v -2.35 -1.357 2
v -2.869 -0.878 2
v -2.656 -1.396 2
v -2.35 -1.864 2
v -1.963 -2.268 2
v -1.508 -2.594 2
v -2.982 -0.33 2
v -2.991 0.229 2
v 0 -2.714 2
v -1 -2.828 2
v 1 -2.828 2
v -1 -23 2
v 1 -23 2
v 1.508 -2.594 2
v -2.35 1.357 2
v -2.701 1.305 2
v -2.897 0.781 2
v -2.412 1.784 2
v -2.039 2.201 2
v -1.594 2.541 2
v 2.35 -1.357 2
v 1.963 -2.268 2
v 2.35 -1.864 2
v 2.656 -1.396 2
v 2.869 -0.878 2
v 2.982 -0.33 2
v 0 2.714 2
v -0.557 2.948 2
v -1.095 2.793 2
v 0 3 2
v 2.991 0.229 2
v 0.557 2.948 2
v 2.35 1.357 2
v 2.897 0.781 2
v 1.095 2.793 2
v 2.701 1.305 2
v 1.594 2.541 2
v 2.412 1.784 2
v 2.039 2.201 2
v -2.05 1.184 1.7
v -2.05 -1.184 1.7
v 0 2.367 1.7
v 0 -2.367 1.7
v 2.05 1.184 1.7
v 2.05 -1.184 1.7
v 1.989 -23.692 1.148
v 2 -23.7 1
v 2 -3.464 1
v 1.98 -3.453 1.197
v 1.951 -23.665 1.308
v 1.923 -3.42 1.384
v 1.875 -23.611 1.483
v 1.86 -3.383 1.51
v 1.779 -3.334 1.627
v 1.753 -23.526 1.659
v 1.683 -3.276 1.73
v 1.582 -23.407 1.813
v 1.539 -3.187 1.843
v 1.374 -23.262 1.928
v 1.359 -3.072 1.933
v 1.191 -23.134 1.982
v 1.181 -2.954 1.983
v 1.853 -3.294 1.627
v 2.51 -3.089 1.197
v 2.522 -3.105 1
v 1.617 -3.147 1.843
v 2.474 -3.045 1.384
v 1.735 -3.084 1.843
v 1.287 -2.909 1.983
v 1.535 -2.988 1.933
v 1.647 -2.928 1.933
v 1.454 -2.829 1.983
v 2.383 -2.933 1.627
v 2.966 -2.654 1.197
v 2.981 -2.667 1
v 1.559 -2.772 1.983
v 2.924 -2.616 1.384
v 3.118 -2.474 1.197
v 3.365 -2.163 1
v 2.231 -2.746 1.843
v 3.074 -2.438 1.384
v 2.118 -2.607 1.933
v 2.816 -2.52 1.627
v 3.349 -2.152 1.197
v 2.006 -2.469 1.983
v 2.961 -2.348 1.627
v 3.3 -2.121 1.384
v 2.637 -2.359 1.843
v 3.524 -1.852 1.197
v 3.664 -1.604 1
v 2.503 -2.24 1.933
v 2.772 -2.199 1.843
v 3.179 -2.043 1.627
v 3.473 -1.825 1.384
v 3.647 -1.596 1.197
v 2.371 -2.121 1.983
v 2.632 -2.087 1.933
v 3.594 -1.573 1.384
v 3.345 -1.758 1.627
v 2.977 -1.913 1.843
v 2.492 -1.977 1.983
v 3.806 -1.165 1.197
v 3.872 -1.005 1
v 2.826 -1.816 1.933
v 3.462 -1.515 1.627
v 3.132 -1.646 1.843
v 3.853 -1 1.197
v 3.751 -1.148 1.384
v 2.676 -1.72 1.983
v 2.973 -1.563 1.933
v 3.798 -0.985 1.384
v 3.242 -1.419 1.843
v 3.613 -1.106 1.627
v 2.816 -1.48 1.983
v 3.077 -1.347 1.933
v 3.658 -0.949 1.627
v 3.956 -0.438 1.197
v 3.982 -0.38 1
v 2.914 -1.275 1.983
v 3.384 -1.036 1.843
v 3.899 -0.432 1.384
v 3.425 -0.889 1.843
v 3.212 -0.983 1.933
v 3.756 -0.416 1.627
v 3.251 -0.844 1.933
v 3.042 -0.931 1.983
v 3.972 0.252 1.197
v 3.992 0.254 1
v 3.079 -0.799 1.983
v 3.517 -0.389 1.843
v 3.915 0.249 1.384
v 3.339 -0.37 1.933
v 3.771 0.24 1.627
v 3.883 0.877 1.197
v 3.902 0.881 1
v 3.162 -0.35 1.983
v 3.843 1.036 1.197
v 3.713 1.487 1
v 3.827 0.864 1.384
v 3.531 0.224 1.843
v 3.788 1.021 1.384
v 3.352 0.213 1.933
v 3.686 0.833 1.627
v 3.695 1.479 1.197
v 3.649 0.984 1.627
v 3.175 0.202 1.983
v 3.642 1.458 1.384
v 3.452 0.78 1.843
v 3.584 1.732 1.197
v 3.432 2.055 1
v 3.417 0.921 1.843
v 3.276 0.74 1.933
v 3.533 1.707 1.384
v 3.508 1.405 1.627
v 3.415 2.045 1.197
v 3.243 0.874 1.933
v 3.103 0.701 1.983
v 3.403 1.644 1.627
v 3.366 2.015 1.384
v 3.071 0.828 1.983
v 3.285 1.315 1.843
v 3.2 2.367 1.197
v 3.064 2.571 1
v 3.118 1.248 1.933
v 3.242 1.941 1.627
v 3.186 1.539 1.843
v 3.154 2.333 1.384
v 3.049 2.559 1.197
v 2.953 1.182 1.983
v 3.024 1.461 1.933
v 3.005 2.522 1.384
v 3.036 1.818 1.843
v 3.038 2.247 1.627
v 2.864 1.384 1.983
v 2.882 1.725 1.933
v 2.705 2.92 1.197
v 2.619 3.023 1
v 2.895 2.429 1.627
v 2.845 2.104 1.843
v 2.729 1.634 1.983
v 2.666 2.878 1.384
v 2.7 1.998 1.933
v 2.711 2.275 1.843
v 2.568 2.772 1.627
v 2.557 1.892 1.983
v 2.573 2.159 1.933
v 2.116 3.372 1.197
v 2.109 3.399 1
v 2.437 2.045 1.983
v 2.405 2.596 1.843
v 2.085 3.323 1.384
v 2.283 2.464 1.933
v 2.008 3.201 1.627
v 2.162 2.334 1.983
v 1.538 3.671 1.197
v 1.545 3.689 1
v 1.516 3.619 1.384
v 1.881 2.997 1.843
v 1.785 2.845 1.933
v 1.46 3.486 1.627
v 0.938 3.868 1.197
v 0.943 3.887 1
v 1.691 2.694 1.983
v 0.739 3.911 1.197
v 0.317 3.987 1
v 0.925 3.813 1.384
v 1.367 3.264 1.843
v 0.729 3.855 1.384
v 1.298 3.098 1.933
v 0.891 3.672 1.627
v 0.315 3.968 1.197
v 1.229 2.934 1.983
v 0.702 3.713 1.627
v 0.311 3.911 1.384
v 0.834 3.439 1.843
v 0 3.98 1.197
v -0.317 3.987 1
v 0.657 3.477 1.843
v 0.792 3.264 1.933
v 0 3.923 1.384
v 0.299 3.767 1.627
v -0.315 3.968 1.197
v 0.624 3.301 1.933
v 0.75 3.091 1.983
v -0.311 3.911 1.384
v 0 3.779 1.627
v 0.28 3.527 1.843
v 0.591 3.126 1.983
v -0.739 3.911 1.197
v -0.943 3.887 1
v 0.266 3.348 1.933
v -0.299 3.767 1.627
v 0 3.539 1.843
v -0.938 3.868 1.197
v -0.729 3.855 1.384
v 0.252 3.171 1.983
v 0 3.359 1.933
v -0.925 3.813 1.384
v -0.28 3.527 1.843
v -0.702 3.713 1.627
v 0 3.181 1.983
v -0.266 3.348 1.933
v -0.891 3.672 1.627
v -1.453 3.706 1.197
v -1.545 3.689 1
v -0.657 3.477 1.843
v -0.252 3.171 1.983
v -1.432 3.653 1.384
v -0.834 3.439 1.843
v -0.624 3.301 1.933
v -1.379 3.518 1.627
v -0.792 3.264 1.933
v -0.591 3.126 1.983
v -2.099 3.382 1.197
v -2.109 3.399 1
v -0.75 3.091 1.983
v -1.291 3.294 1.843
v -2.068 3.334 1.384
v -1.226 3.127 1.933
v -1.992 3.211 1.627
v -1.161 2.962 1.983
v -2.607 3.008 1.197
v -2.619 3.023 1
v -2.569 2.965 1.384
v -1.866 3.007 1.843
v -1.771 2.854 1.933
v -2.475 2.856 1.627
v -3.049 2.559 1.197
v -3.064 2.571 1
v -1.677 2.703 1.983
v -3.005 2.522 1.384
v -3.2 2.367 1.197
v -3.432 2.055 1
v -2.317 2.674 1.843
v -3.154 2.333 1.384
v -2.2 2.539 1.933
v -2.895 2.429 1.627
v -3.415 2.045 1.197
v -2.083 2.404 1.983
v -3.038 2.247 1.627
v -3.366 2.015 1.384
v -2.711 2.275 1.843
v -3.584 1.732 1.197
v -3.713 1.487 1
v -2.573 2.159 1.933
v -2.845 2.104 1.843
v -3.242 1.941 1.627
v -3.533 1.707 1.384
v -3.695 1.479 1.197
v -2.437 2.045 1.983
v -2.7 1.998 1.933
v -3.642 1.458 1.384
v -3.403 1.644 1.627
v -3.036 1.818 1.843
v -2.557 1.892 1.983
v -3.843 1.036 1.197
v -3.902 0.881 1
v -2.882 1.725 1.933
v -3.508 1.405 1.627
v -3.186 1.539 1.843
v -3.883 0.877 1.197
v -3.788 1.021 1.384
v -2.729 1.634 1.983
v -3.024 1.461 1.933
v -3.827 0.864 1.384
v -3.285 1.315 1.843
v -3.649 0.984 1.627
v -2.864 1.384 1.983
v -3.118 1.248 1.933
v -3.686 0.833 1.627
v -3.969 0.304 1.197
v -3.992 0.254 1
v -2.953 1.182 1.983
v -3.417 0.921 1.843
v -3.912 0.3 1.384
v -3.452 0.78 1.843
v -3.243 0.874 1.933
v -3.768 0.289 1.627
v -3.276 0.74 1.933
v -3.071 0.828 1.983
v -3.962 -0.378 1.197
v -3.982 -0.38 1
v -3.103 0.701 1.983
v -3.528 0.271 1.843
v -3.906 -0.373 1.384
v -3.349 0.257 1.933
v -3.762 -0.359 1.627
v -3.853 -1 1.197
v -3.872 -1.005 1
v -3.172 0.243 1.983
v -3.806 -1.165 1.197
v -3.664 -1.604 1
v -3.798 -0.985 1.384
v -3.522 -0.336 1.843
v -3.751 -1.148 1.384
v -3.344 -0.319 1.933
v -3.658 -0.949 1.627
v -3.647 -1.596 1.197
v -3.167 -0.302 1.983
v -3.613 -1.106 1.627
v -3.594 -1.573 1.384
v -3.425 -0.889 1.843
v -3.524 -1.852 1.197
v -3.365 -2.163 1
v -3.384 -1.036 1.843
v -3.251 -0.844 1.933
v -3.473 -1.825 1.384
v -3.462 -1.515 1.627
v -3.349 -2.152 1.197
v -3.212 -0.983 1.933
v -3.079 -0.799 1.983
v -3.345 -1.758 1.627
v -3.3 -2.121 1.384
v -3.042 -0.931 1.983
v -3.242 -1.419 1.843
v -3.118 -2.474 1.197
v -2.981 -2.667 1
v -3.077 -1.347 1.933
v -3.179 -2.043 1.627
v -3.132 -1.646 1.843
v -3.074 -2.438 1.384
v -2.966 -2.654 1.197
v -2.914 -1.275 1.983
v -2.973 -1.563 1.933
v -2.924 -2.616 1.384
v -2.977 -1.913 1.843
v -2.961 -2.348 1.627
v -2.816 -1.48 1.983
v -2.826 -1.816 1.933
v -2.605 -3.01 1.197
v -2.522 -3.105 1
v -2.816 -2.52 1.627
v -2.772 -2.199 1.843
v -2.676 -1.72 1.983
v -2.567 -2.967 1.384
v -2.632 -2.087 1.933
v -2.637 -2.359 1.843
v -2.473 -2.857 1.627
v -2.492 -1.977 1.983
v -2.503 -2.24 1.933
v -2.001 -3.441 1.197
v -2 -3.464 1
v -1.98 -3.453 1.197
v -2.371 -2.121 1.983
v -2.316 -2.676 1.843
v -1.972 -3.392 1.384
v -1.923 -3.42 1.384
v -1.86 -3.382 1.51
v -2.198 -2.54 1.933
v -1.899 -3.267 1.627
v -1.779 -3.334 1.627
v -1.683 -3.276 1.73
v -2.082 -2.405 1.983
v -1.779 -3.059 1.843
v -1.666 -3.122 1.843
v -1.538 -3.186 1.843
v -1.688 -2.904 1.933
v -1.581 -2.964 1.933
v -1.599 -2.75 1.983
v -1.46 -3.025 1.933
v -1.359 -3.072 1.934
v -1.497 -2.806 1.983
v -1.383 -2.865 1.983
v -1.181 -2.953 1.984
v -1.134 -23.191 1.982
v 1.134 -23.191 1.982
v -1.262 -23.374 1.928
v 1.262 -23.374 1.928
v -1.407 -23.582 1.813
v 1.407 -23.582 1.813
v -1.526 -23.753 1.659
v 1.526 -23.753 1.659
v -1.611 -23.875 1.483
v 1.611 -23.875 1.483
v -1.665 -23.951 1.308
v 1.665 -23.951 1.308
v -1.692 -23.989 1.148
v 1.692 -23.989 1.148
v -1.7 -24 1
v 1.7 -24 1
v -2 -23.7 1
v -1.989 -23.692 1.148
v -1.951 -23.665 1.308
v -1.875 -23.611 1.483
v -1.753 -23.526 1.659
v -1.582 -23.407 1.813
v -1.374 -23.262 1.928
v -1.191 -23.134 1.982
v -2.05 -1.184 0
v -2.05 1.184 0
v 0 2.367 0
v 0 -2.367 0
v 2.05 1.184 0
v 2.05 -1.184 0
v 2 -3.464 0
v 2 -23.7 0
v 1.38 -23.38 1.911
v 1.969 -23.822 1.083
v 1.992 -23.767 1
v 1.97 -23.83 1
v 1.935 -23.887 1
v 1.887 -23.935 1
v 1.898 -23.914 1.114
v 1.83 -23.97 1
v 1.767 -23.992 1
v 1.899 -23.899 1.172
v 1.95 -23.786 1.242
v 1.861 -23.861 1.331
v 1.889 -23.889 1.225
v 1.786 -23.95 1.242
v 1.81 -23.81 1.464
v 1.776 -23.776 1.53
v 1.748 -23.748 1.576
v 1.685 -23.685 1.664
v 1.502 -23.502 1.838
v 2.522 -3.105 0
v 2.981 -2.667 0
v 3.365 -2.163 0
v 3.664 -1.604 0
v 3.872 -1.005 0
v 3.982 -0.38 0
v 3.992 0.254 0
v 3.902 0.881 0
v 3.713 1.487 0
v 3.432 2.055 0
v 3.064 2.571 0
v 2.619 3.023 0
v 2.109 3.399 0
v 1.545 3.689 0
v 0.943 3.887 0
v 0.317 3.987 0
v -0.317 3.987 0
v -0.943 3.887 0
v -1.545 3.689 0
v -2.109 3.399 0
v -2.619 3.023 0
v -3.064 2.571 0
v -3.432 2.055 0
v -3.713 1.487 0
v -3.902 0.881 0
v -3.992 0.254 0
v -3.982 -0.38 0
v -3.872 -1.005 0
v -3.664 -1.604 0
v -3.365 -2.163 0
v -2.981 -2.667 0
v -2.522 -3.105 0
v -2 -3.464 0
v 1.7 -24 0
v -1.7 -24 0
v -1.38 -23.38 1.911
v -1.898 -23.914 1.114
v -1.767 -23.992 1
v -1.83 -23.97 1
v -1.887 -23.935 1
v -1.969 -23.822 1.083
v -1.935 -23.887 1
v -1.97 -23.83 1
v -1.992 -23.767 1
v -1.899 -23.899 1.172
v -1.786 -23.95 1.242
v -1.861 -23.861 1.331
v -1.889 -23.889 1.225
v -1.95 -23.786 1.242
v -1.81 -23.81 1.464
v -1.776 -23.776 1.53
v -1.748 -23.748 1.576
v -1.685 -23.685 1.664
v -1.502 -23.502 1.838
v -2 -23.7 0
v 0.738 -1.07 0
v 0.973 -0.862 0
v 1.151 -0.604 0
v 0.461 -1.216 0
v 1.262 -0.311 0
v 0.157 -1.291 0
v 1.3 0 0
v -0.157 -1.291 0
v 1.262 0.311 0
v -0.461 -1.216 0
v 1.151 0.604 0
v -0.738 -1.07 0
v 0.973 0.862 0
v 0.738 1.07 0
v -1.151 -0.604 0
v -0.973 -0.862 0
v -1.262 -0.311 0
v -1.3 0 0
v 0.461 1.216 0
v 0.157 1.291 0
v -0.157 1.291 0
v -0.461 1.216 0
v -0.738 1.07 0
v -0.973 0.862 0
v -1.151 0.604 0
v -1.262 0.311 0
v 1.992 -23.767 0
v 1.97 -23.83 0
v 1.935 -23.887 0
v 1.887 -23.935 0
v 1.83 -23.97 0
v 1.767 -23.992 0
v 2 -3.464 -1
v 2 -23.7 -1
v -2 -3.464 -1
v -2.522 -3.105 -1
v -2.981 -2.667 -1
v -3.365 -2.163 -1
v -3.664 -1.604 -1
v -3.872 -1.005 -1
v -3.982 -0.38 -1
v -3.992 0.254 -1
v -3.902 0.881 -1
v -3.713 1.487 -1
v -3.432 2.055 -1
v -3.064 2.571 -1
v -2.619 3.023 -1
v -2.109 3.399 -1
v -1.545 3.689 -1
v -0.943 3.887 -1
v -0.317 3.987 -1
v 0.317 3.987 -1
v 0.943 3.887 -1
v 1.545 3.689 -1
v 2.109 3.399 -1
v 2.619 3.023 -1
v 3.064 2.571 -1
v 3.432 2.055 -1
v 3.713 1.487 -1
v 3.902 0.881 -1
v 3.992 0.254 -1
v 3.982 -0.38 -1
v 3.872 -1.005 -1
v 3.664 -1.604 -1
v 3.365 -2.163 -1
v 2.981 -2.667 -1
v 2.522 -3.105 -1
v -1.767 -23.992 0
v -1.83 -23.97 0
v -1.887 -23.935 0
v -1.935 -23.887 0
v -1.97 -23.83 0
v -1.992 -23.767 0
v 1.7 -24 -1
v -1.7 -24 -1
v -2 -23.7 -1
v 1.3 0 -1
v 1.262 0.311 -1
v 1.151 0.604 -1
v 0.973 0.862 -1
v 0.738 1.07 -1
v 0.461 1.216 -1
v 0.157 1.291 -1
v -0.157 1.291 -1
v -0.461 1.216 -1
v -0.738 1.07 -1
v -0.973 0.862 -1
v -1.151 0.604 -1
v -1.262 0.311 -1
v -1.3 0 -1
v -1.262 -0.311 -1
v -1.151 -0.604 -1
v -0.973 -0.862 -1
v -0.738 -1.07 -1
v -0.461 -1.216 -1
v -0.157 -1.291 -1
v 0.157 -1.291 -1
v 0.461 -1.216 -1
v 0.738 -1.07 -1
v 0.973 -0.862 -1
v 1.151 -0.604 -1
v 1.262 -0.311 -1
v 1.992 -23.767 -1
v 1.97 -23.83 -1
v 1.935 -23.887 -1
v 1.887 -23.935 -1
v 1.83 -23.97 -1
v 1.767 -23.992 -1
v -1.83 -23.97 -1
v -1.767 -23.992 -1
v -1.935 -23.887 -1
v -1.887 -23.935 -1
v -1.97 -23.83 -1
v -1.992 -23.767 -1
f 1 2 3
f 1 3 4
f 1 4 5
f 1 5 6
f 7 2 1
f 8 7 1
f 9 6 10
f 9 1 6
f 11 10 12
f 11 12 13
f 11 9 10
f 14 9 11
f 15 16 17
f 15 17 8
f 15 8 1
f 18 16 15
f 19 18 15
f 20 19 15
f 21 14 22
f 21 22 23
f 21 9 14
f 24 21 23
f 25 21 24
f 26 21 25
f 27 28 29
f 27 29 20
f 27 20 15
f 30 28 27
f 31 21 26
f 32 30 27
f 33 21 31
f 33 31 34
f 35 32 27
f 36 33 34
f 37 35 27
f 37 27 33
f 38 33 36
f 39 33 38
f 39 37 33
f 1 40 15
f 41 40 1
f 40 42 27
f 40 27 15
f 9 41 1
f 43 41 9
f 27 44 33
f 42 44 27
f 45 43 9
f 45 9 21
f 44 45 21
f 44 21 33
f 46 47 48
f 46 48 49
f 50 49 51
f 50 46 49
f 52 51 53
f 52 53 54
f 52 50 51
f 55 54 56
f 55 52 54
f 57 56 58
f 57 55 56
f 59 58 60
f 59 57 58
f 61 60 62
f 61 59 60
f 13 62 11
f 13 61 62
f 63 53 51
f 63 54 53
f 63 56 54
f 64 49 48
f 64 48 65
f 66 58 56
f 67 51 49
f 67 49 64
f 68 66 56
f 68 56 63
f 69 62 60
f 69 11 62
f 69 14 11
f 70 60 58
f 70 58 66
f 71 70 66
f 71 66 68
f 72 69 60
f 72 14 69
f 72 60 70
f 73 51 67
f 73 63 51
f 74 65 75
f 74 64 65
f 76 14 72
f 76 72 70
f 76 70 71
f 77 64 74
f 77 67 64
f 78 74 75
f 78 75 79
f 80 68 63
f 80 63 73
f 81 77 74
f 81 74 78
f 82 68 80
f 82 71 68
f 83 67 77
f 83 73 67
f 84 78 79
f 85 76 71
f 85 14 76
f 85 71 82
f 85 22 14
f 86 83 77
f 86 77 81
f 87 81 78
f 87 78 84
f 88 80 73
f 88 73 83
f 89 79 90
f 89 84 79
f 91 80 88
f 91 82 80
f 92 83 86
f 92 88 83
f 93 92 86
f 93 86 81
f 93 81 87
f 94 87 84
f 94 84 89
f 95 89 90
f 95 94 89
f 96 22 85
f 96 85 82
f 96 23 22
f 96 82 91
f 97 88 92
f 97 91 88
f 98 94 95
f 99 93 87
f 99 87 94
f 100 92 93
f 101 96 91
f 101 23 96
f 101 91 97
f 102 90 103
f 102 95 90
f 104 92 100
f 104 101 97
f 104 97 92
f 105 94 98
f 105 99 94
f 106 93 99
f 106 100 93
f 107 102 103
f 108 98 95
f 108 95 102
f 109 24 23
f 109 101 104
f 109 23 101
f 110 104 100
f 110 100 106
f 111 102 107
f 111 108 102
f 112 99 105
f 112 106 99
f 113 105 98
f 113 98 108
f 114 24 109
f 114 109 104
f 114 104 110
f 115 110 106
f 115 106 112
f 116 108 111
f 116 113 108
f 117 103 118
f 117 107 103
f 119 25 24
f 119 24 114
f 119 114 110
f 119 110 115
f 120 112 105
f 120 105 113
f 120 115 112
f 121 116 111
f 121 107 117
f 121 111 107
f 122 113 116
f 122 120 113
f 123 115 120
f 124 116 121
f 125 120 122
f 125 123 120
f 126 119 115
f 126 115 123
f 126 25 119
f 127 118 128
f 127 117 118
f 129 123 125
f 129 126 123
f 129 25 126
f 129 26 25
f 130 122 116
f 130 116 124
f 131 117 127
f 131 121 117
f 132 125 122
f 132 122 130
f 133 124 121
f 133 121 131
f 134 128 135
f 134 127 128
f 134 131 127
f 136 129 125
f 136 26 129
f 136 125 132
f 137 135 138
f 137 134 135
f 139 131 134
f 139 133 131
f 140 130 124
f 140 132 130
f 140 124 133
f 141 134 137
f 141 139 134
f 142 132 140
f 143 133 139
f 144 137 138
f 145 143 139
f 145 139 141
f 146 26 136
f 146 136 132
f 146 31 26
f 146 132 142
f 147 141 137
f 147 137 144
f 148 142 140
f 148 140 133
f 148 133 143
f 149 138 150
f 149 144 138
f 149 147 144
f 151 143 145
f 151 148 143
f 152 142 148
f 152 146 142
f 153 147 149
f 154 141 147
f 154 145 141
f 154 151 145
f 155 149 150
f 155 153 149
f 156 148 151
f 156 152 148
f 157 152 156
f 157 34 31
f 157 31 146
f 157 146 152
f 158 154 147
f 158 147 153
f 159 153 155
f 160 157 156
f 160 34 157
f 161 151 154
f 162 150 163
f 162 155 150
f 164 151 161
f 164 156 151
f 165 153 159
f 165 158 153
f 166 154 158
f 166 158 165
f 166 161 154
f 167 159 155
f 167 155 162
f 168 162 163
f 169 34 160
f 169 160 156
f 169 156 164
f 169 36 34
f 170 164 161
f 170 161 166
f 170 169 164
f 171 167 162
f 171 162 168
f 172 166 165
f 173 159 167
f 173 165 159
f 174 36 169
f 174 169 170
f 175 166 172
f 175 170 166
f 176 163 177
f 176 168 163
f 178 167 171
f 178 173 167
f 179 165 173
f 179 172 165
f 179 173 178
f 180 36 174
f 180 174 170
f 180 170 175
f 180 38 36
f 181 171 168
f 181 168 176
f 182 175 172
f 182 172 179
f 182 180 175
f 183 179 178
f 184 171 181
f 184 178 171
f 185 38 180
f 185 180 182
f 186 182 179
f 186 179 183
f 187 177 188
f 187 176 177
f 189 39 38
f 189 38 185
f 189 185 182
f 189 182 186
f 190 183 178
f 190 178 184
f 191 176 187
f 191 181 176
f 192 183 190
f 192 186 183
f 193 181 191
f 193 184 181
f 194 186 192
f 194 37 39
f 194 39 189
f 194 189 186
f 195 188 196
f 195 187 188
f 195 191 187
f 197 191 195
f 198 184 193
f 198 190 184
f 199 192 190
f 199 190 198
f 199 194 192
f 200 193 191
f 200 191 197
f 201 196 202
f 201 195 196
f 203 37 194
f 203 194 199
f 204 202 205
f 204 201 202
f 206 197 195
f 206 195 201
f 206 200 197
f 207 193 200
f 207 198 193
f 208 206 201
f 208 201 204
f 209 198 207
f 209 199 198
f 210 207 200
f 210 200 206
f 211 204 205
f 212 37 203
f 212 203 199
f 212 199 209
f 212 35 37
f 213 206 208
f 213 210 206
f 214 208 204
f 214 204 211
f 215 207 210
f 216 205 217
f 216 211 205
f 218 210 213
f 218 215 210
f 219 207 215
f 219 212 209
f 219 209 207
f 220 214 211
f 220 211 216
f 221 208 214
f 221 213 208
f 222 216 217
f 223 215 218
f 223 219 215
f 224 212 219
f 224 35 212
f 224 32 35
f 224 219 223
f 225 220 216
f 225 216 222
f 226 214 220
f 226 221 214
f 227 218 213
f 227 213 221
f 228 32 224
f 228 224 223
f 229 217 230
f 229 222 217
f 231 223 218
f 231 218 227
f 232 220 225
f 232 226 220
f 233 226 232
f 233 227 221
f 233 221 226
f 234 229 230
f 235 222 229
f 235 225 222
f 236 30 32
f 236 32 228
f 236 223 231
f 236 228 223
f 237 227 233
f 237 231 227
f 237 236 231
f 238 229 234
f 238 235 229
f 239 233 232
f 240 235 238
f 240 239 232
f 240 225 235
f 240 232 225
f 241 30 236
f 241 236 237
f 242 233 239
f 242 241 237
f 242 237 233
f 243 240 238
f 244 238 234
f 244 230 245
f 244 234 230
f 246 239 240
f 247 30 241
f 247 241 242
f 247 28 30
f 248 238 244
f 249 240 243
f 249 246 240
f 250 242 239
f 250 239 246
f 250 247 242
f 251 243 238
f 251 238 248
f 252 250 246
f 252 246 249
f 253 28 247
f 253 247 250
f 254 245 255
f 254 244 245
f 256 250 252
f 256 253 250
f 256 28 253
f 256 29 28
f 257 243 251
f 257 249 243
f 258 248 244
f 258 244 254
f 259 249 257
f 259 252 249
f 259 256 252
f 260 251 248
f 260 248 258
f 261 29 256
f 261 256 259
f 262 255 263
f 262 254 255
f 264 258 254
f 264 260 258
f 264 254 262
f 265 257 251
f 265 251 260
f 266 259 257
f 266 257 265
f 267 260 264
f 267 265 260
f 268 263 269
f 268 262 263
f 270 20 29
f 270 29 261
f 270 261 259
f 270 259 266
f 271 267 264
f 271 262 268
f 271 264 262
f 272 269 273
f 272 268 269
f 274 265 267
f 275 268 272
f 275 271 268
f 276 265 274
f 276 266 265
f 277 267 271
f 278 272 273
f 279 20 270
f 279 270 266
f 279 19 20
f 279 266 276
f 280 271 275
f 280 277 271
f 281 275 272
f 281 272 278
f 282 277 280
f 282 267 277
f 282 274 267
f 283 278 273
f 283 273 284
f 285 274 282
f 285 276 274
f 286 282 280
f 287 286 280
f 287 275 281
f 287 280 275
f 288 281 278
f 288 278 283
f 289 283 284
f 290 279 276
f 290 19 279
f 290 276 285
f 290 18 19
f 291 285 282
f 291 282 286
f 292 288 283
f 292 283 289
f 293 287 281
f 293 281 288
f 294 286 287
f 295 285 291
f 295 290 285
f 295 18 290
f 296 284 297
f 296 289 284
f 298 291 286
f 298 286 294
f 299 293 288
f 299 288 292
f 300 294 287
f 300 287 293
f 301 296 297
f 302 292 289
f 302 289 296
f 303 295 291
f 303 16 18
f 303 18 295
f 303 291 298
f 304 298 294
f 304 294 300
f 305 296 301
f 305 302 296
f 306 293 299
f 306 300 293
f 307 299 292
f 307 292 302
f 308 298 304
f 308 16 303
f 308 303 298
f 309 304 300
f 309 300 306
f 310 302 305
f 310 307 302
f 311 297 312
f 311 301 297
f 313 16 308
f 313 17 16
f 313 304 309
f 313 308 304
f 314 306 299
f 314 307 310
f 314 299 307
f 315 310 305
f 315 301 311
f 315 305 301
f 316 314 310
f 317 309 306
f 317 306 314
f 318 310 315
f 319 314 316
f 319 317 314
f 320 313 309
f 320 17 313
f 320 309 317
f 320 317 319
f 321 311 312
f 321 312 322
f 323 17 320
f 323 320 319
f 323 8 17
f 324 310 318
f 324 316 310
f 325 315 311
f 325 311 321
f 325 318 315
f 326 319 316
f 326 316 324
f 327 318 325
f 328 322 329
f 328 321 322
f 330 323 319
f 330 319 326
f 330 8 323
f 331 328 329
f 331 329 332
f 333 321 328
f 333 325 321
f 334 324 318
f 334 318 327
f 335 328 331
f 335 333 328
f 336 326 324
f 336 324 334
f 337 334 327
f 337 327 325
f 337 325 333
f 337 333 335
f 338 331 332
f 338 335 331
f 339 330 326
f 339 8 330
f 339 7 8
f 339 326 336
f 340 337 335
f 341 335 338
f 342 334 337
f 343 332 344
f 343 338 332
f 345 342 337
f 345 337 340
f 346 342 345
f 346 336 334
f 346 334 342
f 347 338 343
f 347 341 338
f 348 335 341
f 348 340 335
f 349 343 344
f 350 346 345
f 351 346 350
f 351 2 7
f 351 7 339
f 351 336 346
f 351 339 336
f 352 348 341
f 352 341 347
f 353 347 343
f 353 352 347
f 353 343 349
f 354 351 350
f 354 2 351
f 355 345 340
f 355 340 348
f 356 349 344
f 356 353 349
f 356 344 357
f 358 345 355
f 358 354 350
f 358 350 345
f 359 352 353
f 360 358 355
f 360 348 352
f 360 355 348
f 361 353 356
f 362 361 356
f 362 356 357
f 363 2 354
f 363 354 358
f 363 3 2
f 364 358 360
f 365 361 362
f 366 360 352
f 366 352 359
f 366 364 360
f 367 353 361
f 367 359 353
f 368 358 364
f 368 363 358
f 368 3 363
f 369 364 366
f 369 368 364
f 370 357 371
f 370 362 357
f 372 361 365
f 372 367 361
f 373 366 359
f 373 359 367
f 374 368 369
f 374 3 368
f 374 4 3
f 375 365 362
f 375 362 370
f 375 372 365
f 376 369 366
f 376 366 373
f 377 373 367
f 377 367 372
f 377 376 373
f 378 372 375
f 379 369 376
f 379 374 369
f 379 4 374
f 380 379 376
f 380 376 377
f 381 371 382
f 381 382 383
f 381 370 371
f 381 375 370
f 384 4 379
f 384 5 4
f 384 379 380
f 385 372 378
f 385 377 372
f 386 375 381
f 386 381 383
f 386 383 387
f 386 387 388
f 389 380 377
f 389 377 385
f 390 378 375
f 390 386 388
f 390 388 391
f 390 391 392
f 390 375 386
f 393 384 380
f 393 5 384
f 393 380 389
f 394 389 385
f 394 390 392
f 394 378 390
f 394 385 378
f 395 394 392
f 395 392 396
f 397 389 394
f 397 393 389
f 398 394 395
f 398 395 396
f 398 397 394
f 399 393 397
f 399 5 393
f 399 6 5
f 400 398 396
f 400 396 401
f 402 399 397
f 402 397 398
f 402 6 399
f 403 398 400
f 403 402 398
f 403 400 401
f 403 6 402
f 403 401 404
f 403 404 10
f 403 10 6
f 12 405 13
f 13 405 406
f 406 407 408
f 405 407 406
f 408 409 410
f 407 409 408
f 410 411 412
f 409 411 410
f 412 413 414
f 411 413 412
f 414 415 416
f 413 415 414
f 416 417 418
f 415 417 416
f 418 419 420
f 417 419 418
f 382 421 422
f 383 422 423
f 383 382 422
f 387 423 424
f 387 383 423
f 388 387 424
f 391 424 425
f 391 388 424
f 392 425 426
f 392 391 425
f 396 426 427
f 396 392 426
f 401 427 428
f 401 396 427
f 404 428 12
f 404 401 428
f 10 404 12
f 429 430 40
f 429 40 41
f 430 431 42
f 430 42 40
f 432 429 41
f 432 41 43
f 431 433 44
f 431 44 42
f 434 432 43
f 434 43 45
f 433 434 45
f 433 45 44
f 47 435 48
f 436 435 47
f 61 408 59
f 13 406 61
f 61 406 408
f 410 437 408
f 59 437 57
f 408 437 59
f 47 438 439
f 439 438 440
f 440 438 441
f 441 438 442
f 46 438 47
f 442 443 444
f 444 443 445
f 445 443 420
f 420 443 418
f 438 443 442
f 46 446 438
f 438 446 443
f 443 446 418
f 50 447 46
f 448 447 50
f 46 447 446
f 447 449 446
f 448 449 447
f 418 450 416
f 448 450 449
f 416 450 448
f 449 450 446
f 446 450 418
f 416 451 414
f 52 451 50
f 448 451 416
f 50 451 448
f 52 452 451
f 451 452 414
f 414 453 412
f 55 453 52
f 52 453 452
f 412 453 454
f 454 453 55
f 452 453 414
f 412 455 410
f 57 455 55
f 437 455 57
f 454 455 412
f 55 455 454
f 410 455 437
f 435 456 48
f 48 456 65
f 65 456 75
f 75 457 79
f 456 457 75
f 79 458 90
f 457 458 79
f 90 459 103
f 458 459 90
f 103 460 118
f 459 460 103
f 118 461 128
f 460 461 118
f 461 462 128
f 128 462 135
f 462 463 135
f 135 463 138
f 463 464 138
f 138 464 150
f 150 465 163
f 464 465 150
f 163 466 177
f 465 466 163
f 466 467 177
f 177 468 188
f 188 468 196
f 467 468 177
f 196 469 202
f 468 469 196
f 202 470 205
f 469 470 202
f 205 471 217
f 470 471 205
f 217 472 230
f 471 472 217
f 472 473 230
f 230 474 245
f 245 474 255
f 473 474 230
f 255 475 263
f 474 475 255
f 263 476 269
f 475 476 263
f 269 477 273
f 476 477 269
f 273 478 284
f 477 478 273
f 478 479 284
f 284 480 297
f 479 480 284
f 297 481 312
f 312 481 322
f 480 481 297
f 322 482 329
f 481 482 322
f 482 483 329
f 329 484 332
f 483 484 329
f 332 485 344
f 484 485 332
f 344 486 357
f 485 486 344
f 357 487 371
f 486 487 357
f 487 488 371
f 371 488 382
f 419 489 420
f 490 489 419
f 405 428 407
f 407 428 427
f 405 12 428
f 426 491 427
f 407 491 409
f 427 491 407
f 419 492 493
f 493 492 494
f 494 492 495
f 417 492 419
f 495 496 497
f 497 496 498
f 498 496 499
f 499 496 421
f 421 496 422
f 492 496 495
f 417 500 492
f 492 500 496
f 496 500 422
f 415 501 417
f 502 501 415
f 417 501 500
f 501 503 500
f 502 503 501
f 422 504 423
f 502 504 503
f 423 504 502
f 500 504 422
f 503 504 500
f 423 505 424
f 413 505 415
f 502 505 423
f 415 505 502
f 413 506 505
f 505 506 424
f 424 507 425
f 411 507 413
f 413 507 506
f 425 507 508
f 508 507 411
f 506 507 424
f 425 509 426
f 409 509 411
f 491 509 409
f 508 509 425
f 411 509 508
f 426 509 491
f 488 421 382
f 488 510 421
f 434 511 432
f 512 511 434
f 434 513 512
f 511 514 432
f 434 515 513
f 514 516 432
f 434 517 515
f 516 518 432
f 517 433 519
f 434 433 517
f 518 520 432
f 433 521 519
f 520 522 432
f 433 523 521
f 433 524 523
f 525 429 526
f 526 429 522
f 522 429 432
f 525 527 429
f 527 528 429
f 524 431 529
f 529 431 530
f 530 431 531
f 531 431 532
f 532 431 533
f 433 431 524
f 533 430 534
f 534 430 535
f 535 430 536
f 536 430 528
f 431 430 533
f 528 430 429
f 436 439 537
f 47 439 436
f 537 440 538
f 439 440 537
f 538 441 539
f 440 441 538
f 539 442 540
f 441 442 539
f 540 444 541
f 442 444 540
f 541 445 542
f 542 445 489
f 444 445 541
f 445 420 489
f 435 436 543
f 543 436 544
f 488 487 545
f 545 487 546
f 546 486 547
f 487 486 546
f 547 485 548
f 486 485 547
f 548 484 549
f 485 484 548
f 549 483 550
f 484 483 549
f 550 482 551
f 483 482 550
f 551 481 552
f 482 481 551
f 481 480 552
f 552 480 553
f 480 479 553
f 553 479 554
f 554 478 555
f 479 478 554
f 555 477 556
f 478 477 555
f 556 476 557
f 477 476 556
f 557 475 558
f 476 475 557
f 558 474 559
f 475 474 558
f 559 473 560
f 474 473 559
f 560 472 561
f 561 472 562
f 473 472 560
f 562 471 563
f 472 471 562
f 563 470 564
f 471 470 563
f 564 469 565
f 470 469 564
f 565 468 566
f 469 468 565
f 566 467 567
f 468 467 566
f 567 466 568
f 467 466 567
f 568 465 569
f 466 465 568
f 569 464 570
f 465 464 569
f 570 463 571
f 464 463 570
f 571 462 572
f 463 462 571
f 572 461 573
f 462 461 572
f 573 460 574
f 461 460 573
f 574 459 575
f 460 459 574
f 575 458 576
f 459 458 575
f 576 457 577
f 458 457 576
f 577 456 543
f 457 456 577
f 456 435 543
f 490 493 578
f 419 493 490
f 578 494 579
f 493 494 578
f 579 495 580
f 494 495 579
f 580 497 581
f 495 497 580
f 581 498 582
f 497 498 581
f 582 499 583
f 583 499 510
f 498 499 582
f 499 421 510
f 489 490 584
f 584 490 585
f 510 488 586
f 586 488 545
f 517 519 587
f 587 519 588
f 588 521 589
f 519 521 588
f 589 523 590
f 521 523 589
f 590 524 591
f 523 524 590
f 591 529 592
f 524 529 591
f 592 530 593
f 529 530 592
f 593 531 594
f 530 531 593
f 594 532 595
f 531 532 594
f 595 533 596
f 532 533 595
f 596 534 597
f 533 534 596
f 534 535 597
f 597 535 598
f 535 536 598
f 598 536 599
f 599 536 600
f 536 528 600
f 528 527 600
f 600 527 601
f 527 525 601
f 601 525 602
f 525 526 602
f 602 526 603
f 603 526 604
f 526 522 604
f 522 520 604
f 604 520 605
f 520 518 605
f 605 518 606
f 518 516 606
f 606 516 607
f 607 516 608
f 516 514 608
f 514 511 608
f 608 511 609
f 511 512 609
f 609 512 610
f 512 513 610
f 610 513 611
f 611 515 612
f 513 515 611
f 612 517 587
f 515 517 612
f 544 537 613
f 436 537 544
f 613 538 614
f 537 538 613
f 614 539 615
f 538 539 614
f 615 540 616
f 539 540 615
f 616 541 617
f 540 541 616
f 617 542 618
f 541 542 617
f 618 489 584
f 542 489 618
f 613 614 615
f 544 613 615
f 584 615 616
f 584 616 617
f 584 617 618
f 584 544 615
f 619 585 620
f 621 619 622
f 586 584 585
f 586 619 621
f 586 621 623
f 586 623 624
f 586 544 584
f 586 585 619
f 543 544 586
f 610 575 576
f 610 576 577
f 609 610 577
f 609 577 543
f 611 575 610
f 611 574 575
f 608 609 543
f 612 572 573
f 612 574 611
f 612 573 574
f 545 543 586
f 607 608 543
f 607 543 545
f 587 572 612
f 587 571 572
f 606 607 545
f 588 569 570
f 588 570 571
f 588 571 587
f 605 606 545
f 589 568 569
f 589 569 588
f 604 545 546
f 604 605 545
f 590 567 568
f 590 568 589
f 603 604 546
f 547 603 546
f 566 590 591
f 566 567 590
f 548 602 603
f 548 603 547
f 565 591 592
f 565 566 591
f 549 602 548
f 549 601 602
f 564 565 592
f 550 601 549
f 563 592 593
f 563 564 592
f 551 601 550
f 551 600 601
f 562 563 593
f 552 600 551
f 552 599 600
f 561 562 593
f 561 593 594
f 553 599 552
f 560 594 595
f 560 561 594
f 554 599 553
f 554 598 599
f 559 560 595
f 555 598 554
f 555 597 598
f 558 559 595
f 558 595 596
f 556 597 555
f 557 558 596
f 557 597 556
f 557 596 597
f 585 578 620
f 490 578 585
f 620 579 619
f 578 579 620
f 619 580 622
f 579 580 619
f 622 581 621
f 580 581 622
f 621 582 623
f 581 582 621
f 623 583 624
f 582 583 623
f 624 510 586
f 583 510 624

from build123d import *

# Parameters (mm, degrees)
PAD_DEPTH    = 2
PAD001_DEPTH = 1
SKETCH002_R  = 1.3
POCKET_DEPTH = 1.001
FILLET_R     = 1
FILLET001_R  = 0.3
FILLET002_R  = 0.3
CHAMFER_SIZE = 0.3


with BuildPart() as part:
    # Sketch → Pad (new body)
    with BuildSketch(Plane.XY):
        with BuildLine():
            ThreePointArc((2, -3.464102), (0, 4), (-2, -3.464102))
            Line((-2, -24), (-2, -3.464102))
            Line((2, -24), (-2, -24))
            Line((2, -3.464102), (2, -24))
        make_face()
        Polygon((0, 2.367136), (-2.05, 1.183568), (-2.05, -1.183568), (0, -2.367136), (2.05, -1.183568), (2.05, 1.183568), align=None, mode=Mode.SUBTRACT)
    extrude(amount=PAD_DEPTH)

    # Sketch001 (on Face11 of Pad) → Pad001 (join)
    with BuildSketch(Plane(origin=(0, 0, 0), x_dir=(1, 0, 0), z_dir=(0, 0, -1))):
        with BuildLine():
            ThreePointArc((-2, 3.464102), (0, -4), (2, 3.464102))
            Line((2, 3.464102), (2, 24))
            Line((2, 24), (-2, 24))
            Line((-2, 24), (-2, 3.464102))
        make_face()
    extrude(amount=PAD001_DEPTH)

    # Sketch002 (on Face17 of Pad001) → Pocket (cut, through all)
    with BuildSketch(Plane.XY):
        Circle(SKETCH002_R)
    extrude(amount=-POCKET_DEPTH, mode=Mode.SUBTRACT)

    # Fillet
    fillet_edges = [part.edges().sort_by_distance(p)[0] for p in [
        (2, -13.732051, 2),
        (0, -24, 2),
        (-2, -13.732051, 2),
        (0, 4, 2),
    ]]
    fillet(fillet_edges, radius=FILLET_R)

    # Fillet001
    fillet001_edges = [part.edges().sort_by_distance(p)[0] for p in [
        (2, -24, 0.5),
        (2, -24, -0.5),
    ]]
    fillet(fillet001_edges, radius=FILLET001_R)

    # Fillet002
    fillet002_edges = [part.edges().sort_by_distance(p)[0] for p in [
        (-2, -24, 0.5),
        (-2, -24, -0.5),
    ]]
    fillet(fillet002_edges, radius=FILLET002_R)

    # Chamfer
    chamfer_edges = [part.edges().sort_by_distance(p)[0] for p in [
        (-2.05, 0, 2),
        (-1.025, 1.775352, 2),
        (1.025, 1.775352, 2),
        (2.05, 0, 2),
        (1.025, -1.775352, 2),
        (-1.025, -1.775352, 2),
    ]]
    chamfer(chamfer_edges, length=CHAMFER_SIZE)


solid = part.part
